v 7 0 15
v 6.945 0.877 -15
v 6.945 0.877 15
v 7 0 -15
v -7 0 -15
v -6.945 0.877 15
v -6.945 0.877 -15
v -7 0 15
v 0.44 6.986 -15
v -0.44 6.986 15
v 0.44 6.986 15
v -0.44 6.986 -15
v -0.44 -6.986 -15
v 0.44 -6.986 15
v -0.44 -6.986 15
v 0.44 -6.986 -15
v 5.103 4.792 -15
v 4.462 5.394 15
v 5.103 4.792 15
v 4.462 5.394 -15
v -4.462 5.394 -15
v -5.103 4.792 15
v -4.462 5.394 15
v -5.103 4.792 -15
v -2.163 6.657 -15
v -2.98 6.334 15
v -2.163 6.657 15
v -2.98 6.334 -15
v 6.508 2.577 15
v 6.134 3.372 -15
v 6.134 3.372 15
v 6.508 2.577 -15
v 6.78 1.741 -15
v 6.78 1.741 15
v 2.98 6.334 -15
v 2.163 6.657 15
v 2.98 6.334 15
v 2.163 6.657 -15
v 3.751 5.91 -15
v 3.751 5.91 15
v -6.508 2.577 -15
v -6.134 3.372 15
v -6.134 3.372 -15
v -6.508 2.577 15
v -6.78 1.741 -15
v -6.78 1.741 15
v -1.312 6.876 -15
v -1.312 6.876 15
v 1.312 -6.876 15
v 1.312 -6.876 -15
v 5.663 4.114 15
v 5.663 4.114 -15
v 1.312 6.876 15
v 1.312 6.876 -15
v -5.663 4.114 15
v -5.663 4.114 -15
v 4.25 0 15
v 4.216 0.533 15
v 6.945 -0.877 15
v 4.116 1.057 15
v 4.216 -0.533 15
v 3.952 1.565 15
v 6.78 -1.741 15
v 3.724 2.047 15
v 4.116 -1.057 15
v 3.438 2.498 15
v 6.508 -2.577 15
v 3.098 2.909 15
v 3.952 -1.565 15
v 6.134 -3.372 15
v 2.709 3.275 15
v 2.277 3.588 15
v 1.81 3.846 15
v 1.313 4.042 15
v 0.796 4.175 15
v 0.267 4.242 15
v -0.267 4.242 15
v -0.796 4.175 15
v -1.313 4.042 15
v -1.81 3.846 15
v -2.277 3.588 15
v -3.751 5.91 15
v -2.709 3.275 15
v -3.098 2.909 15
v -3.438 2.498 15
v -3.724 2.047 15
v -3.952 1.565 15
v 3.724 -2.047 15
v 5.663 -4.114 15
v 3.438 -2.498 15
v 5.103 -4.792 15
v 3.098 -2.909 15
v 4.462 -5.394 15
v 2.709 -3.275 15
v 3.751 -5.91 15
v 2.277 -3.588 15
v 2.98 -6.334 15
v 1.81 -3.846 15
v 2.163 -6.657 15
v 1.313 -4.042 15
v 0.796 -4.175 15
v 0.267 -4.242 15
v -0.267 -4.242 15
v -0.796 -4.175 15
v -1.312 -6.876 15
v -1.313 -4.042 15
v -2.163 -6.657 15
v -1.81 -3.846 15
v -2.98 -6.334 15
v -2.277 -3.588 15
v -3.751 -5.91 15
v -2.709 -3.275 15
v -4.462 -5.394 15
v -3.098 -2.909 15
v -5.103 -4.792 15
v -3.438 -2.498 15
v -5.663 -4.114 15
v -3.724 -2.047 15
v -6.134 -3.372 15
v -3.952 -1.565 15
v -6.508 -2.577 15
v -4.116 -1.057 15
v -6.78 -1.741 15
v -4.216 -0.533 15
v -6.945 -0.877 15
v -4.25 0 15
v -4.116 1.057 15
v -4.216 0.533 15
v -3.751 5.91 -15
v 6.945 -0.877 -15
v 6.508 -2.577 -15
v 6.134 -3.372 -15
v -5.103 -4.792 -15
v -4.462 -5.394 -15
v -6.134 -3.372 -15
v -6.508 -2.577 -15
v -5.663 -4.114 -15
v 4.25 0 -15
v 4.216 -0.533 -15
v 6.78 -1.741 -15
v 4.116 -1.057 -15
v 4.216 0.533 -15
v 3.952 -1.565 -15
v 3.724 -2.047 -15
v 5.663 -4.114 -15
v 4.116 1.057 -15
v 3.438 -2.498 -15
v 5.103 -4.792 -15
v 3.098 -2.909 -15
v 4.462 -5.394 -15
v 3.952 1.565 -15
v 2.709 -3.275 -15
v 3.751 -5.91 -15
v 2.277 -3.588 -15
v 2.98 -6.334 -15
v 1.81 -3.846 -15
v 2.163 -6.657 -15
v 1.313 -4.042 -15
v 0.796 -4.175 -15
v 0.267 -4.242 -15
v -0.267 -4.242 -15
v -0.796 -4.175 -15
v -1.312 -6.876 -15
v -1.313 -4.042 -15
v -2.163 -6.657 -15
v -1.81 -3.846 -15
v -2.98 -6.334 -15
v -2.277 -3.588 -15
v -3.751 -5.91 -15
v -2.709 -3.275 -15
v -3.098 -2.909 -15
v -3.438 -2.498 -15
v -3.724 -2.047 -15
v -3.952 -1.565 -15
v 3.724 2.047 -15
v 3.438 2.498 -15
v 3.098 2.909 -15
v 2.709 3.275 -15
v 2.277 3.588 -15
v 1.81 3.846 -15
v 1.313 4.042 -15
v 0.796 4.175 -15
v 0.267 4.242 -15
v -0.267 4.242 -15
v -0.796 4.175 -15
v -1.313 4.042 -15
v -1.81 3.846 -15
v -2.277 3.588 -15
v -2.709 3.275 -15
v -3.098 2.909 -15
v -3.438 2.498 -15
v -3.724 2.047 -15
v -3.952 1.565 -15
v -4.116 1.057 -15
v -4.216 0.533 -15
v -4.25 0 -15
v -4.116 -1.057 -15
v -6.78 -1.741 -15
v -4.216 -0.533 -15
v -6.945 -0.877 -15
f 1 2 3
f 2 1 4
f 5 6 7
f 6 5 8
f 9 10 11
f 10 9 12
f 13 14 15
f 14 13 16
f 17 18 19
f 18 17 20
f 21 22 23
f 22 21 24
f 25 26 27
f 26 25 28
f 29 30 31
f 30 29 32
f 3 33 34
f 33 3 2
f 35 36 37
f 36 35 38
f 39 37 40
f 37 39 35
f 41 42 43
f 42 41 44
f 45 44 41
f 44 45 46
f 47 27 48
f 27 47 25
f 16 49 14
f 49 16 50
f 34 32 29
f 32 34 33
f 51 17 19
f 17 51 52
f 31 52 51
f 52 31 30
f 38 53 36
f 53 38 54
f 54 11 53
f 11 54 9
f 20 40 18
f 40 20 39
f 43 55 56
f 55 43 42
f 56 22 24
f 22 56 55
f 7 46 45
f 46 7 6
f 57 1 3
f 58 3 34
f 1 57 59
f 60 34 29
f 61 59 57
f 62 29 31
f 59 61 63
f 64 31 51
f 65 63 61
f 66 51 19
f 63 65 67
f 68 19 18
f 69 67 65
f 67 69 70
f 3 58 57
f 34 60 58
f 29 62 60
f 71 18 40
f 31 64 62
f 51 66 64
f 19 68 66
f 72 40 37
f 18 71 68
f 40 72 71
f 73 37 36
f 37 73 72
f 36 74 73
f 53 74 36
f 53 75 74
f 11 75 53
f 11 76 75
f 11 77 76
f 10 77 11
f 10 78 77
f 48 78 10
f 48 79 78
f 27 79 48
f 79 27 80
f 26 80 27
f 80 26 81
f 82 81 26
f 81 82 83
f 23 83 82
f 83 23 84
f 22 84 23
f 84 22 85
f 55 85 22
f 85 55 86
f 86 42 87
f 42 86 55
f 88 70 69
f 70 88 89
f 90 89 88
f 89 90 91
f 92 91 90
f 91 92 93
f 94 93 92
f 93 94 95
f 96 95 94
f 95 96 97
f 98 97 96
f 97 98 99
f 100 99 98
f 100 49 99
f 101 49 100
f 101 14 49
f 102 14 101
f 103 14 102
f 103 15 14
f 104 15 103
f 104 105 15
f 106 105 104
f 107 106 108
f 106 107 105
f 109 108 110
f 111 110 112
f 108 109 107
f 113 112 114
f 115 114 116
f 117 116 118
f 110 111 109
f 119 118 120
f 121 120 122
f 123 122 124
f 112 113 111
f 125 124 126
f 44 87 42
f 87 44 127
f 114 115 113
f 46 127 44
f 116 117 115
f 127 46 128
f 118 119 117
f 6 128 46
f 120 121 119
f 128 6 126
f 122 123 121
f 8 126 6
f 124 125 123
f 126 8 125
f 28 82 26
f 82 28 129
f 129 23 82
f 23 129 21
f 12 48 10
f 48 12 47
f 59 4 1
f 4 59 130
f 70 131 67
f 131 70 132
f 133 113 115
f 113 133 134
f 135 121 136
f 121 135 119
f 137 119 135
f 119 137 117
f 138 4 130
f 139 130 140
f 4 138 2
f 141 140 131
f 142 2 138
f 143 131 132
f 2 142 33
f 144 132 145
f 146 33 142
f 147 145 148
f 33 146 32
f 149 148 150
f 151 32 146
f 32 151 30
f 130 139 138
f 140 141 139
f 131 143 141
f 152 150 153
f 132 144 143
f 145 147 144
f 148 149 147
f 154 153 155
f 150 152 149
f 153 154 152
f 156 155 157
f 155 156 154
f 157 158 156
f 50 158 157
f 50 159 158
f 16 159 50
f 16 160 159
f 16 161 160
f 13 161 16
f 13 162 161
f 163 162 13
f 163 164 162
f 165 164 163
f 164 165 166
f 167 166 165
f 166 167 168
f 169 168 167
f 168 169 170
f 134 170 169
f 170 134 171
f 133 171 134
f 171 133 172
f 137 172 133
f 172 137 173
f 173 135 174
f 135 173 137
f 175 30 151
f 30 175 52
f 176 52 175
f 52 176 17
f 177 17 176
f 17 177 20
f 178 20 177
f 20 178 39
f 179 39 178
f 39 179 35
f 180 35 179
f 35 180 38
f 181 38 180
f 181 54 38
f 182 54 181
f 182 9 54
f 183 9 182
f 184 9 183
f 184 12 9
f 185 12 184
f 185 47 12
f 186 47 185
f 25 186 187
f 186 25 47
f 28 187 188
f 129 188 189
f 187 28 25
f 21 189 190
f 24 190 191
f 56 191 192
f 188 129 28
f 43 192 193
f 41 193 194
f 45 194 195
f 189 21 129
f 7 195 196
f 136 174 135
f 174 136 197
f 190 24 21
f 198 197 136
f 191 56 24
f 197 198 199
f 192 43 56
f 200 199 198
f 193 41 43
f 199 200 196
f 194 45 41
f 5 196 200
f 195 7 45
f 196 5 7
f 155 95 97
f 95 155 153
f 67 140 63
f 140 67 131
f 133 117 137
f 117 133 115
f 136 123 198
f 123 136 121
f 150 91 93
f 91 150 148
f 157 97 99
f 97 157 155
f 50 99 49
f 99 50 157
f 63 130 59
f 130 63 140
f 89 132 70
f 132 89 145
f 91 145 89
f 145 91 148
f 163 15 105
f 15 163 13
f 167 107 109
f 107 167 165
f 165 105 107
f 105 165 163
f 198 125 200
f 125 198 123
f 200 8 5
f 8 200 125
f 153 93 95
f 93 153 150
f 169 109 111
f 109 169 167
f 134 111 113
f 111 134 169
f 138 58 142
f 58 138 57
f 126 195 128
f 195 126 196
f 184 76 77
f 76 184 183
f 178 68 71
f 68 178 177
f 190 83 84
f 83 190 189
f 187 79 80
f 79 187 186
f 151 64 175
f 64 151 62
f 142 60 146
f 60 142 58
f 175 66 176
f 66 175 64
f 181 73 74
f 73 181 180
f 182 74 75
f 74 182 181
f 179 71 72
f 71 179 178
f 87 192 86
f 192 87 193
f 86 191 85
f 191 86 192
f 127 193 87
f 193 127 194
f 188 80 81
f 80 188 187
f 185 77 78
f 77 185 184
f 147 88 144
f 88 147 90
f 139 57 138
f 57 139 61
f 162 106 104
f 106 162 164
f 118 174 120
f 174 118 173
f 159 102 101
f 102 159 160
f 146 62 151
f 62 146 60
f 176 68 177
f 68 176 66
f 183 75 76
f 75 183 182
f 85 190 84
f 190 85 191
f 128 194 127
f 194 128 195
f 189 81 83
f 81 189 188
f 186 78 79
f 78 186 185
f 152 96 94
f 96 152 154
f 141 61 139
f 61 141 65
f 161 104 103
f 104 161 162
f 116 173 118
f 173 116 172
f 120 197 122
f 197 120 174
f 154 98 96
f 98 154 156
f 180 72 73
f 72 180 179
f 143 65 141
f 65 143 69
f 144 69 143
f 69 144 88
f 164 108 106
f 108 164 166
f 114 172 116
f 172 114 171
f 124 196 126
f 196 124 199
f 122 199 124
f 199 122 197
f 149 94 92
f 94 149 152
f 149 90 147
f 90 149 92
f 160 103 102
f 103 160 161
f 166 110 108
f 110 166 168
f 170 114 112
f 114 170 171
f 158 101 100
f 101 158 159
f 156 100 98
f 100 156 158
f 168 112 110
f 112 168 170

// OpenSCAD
$fn = 50;


difference() {
	union() {
		translate(v = [0, 0, -15.0000000000]) {
			cylinder(h = 30, r = 7.0000000000);
		}
	}
	union() {
		translate(v = [0, 0, -100.0000000000]) {
			cylinder(h = 200, r = 4.2500000000);
		}
	}
}
